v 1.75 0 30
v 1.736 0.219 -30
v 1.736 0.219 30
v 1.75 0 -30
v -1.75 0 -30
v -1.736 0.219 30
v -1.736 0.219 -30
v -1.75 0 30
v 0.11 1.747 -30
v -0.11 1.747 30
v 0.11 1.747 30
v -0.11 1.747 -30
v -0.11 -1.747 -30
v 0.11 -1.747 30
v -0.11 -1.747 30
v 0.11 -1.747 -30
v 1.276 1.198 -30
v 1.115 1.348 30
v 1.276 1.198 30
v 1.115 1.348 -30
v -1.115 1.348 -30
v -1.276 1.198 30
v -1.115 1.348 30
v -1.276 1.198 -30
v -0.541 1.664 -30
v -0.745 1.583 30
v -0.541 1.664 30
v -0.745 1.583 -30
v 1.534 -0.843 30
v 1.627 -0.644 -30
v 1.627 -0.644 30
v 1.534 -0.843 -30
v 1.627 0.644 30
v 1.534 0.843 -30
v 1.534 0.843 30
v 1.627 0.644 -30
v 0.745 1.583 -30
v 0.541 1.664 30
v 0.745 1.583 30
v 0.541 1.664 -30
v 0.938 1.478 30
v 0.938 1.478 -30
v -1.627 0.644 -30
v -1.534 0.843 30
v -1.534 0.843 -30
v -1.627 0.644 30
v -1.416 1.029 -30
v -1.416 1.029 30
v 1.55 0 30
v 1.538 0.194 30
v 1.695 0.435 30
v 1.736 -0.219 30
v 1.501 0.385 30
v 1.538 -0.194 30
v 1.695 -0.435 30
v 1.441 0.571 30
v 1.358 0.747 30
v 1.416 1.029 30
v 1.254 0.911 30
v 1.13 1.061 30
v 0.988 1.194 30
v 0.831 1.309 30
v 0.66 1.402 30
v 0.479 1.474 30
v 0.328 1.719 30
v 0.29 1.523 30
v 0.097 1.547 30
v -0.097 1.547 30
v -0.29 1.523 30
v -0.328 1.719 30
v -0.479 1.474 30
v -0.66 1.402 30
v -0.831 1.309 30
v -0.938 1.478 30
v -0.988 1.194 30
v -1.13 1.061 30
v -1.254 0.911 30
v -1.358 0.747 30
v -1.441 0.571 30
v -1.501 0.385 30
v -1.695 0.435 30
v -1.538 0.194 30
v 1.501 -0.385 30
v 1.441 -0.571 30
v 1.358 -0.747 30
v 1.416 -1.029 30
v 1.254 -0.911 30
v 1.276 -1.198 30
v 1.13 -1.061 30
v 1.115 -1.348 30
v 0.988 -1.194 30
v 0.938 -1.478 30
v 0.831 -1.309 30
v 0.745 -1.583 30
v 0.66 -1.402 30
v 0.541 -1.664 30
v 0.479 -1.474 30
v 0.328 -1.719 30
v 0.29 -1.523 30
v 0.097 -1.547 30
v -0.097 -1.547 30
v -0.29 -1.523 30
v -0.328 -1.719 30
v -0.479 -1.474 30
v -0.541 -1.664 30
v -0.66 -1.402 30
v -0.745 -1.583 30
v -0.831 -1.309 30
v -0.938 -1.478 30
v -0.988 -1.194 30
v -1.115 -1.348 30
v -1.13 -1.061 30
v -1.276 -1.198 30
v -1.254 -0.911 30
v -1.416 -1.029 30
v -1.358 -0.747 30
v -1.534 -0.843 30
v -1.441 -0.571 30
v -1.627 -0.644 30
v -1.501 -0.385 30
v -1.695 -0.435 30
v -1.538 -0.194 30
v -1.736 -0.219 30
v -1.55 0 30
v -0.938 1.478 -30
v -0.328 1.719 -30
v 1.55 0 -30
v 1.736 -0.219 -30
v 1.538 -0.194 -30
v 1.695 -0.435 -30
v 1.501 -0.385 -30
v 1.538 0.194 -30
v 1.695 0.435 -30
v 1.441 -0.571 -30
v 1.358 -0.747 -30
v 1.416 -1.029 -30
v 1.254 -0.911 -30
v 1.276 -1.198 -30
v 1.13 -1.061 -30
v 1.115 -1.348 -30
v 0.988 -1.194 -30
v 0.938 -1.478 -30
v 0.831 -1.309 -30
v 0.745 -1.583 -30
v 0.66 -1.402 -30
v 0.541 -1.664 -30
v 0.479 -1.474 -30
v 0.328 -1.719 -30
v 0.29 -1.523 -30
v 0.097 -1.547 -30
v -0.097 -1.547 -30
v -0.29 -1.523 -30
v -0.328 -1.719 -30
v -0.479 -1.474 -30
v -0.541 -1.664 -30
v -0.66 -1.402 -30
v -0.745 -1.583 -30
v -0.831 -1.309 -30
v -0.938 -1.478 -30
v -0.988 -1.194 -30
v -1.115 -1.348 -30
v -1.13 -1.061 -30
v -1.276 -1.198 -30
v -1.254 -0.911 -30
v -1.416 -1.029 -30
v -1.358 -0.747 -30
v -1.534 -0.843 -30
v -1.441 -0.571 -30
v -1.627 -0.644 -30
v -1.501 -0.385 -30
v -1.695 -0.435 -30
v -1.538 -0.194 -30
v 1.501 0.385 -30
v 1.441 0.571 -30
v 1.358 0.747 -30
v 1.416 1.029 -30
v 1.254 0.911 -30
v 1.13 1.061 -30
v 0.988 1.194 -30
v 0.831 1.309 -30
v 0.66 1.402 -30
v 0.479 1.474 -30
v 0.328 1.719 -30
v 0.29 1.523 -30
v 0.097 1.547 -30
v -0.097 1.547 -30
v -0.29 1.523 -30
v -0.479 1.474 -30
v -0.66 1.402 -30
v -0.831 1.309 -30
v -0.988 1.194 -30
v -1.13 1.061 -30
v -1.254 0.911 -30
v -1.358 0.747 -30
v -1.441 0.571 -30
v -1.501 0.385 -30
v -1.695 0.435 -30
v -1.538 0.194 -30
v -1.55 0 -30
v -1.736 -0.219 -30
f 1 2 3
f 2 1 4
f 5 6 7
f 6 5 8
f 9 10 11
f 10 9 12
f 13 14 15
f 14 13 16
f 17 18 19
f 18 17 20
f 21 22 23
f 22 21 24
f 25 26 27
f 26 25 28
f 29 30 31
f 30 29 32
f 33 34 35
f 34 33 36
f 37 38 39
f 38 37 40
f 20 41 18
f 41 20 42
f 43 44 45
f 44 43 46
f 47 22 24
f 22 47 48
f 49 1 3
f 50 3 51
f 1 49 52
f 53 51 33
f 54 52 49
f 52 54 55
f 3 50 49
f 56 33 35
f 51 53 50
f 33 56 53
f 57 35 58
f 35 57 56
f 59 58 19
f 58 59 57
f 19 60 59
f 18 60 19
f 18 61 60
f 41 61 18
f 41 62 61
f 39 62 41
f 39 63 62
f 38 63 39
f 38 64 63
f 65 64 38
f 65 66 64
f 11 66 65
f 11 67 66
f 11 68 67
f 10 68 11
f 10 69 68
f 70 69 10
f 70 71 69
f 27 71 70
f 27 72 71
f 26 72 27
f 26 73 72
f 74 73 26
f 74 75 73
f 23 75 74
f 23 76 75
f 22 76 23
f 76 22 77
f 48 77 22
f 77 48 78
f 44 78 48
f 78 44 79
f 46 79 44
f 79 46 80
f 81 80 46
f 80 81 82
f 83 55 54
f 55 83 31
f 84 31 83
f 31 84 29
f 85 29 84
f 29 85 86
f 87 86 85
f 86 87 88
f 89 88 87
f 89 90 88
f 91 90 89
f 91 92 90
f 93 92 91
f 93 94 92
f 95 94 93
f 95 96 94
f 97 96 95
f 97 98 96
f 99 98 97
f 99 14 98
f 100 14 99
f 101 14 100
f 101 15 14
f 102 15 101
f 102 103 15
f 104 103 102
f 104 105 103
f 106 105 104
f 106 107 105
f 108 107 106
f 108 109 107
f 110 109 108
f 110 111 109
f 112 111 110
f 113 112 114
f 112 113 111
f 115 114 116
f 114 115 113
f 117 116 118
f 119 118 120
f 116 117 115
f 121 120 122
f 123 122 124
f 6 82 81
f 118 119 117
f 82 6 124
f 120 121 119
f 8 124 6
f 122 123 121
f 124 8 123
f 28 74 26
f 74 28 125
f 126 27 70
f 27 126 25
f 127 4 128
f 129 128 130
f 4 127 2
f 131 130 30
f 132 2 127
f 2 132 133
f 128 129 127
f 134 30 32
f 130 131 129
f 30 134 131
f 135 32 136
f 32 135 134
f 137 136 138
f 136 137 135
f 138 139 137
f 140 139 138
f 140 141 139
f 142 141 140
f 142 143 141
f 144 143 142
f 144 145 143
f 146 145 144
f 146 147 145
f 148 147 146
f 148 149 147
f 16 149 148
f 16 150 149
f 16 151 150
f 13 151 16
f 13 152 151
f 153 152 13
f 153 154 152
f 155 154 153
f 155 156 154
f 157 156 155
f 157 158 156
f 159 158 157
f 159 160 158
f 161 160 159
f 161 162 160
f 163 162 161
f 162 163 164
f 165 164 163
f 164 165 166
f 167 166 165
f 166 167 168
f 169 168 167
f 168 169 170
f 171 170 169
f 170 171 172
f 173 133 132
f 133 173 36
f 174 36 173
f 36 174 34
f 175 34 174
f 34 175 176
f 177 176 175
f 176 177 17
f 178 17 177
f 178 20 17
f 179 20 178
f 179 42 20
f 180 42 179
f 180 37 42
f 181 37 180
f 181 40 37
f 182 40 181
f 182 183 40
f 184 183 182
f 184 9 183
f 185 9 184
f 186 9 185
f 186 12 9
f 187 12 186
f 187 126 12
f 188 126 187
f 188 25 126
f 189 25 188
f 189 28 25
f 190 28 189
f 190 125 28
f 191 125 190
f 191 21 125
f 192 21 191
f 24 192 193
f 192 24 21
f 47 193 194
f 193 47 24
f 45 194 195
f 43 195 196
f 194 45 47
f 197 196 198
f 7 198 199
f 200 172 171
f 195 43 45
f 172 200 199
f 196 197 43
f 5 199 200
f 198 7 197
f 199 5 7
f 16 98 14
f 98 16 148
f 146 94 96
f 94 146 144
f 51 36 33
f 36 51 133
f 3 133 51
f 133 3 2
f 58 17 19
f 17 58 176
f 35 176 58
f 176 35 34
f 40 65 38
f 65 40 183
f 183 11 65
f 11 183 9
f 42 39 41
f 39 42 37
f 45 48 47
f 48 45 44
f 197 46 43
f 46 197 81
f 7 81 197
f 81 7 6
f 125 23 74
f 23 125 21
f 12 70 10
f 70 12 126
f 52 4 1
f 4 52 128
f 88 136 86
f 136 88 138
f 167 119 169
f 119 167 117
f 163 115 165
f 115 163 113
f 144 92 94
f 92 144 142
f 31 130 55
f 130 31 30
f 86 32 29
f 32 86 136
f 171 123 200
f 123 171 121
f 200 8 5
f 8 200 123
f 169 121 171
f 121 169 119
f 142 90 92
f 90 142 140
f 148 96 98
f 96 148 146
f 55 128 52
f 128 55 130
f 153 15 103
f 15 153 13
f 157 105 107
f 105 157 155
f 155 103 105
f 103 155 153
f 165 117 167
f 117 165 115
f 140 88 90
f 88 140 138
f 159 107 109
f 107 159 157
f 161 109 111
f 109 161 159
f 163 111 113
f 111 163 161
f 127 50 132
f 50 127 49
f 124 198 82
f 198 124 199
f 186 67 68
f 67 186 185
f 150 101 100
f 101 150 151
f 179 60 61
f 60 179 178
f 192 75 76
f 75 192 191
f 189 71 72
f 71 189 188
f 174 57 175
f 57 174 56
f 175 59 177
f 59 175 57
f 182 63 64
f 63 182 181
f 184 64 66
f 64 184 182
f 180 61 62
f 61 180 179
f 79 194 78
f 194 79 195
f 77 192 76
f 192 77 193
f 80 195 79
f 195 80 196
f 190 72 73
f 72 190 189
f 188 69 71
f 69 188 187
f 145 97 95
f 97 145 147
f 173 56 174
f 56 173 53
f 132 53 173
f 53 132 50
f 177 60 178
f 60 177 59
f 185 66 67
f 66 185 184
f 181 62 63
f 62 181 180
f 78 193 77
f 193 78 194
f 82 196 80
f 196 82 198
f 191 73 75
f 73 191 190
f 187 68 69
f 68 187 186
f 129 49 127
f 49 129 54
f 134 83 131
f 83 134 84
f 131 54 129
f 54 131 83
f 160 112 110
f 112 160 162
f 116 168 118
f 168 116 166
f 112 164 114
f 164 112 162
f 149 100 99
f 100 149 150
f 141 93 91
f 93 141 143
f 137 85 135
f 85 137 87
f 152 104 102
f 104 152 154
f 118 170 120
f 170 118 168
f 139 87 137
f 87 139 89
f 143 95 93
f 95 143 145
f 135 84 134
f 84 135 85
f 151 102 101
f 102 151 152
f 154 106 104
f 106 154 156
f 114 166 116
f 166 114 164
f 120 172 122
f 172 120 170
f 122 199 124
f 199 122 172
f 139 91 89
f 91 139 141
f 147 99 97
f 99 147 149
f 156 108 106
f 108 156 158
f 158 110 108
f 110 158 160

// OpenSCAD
$fn = 50;


difference() {
	union() {
		translate(v = [0, 0, -30.0000000000]) {
			cylinder(h = 60, r = 1.7500000000);
		}
	}
	union() {
		translate(v = [0, 0, -100.0000000000]) {
			cylinder(h = 200, r = 1.5500000000);
		}
	}
}
